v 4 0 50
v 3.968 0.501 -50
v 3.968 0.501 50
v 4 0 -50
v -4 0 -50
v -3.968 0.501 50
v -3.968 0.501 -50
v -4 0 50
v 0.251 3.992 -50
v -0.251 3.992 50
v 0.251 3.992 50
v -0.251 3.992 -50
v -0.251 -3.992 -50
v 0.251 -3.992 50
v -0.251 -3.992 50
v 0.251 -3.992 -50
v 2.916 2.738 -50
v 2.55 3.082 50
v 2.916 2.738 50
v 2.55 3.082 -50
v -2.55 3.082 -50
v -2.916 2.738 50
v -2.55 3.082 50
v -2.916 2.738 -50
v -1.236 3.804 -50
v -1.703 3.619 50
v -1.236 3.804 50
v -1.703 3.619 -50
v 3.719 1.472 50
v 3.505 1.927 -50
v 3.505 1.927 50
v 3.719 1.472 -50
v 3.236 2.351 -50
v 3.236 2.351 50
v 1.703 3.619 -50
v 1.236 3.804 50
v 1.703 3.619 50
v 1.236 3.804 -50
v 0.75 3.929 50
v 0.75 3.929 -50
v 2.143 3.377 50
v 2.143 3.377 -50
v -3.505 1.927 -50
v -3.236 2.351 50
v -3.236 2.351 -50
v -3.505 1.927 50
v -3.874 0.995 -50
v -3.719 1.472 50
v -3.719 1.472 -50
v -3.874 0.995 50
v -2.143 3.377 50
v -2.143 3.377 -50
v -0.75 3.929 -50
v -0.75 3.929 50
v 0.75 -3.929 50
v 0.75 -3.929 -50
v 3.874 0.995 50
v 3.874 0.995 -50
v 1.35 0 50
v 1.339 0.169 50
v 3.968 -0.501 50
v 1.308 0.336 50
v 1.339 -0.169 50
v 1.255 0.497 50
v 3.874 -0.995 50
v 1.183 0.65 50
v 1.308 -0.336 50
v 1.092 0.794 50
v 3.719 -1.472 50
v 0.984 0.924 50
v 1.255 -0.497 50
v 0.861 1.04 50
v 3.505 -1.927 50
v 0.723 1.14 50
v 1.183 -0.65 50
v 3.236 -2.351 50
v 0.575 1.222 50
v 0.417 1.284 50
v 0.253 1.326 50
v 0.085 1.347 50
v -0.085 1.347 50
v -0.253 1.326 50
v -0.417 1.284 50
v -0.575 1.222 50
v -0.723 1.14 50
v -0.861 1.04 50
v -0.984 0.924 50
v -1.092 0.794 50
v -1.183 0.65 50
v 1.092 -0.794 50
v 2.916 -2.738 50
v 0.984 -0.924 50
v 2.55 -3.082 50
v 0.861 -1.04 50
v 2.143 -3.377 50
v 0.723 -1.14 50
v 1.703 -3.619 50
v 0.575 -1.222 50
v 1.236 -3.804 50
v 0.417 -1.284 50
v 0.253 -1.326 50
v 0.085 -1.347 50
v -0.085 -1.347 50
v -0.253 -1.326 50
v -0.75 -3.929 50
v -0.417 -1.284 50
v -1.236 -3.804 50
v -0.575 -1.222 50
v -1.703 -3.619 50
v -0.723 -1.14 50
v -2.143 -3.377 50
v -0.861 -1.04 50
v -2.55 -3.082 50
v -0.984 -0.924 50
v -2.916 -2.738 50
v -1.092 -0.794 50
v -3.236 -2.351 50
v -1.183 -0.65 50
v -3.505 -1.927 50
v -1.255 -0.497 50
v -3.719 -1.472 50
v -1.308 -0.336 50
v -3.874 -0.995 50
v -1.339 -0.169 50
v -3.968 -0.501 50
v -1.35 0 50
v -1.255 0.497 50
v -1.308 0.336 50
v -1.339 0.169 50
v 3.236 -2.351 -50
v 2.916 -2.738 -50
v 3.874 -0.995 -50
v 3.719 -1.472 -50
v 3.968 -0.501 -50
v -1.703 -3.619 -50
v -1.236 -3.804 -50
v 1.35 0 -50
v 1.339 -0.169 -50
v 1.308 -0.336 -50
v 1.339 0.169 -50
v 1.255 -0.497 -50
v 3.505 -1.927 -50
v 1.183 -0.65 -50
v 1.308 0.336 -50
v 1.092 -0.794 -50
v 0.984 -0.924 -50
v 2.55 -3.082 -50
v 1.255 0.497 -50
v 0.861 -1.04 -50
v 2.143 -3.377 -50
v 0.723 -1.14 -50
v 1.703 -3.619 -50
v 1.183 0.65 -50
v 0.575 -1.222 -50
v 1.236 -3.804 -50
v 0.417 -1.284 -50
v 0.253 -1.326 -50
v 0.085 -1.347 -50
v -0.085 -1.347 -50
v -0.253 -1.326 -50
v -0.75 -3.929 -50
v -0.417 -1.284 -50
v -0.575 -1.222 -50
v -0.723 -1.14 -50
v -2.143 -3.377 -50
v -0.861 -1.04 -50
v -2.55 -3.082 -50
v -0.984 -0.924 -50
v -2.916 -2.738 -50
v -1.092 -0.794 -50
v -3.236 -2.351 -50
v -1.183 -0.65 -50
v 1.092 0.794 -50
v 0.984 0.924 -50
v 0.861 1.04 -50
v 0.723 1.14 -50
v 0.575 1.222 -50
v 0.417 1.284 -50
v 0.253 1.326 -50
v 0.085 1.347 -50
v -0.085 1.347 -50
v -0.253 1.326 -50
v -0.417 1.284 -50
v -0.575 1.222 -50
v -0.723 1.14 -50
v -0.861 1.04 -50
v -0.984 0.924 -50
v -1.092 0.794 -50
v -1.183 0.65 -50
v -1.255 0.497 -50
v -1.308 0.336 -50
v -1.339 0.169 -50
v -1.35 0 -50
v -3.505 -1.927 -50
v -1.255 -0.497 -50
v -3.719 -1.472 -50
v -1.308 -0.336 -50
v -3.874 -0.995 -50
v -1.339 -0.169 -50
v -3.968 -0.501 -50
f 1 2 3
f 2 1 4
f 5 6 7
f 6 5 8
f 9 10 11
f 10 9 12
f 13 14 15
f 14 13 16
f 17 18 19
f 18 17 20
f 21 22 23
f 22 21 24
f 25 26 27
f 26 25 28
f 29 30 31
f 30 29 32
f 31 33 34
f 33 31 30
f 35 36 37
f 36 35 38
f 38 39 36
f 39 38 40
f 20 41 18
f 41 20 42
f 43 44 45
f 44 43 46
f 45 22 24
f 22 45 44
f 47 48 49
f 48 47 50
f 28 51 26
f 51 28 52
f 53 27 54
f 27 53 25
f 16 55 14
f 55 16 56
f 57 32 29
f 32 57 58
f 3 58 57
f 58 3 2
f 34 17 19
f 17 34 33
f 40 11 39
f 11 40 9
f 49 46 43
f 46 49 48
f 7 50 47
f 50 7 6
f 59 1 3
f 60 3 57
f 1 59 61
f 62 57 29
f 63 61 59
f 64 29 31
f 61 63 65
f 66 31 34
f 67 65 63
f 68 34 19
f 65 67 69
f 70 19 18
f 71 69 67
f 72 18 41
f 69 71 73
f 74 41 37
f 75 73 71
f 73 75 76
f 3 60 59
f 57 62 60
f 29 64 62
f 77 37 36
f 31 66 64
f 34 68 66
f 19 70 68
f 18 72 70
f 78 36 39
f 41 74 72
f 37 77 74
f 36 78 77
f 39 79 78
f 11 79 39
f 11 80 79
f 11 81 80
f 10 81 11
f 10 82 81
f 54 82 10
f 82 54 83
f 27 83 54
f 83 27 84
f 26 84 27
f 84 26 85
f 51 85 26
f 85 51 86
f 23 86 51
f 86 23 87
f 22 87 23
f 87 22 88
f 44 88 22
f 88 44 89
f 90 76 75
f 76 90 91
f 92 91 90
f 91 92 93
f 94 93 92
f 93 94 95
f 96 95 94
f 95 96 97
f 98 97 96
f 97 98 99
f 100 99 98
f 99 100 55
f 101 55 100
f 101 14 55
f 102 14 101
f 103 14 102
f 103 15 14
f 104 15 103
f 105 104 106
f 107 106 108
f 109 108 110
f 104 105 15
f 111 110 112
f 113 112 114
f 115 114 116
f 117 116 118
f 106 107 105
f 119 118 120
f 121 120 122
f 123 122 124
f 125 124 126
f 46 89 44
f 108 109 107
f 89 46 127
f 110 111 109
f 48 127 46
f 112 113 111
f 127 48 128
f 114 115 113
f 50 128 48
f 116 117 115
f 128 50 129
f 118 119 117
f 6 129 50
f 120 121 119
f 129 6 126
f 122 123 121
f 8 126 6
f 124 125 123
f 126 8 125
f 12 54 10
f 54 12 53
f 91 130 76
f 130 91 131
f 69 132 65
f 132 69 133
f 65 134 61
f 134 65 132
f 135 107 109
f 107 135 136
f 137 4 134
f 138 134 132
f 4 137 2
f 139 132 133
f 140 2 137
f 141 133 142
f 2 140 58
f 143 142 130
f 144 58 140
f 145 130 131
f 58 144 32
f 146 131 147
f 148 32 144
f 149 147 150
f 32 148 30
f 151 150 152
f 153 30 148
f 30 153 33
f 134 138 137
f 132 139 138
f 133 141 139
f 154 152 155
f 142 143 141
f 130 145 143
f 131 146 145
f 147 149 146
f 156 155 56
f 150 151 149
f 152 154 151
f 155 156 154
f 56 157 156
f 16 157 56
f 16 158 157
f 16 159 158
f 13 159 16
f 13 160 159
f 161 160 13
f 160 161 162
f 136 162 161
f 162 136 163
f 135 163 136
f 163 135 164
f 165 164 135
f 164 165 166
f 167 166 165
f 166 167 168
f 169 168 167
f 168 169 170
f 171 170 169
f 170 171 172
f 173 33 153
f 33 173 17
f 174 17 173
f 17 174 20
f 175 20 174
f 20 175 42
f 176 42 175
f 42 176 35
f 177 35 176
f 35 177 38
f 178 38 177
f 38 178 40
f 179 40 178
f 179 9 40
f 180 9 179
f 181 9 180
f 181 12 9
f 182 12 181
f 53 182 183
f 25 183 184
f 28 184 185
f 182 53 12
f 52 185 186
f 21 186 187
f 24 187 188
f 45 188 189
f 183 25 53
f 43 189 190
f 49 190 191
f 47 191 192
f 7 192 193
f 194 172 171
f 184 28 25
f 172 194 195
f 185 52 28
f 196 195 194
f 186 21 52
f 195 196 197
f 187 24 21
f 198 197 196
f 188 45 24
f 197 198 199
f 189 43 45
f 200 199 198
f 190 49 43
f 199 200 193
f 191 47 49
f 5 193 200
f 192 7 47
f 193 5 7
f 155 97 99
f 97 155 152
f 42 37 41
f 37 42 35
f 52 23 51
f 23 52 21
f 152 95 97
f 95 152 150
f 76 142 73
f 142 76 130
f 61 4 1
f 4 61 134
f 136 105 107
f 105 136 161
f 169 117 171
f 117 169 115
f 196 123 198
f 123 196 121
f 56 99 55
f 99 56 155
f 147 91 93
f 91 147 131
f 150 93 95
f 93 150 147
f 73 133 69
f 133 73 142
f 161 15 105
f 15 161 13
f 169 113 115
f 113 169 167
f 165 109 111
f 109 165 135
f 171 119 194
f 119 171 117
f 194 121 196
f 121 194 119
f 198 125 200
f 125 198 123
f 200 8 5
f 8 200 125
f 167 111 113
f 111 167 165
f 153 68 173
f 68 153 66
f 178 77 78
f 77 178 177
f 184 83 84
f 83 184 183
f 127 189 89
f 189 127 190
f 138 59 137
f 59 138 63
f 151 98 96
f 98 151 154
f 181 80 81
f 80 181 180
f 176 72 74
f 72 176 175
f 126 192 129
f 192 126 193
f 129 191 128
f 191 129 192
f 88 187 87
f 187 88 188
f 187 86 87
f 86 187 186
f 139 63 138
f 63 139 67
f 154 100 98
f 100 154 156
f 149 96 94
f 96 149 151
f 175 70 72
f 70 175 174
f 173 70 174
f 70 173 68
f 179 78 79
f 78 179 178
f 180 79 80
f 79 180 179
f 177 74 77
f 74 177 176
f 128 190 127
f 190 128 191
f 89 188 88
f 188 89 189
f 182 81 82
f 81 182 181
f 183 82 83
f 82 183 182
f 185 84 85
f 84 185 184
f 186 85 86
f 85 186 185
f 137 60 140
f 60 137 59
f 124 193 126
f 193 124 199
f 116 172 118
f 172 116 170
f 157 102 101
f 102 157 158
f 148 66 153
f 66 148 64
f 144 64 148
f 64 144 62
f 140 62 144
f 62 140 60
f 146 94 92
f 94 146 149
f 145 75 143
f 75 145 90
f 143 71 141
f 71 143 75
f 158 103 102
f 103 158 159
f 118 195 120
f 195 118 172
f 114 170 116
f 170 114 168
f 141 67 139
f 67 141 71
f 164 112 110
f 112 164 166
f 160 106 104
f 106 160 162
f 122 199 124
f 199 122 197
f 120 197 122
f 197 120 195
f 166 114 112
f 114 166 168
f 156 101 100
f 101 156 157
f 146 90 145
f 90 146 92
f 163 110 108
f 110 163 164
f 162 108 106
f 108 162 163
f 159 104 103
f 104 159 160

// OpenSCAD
$fn = 50;


difference() {
	union() {
		translate(v = [0, 0, -50.0000000000]) {
			cylinder(h = 100, r = 4.0000000000);
		}
	}
	union() {
		translate(v = [0, 0, -100.0000000000]) {
			cylinder(h = 200, r = 1.3500000000);
		}
	}
}
